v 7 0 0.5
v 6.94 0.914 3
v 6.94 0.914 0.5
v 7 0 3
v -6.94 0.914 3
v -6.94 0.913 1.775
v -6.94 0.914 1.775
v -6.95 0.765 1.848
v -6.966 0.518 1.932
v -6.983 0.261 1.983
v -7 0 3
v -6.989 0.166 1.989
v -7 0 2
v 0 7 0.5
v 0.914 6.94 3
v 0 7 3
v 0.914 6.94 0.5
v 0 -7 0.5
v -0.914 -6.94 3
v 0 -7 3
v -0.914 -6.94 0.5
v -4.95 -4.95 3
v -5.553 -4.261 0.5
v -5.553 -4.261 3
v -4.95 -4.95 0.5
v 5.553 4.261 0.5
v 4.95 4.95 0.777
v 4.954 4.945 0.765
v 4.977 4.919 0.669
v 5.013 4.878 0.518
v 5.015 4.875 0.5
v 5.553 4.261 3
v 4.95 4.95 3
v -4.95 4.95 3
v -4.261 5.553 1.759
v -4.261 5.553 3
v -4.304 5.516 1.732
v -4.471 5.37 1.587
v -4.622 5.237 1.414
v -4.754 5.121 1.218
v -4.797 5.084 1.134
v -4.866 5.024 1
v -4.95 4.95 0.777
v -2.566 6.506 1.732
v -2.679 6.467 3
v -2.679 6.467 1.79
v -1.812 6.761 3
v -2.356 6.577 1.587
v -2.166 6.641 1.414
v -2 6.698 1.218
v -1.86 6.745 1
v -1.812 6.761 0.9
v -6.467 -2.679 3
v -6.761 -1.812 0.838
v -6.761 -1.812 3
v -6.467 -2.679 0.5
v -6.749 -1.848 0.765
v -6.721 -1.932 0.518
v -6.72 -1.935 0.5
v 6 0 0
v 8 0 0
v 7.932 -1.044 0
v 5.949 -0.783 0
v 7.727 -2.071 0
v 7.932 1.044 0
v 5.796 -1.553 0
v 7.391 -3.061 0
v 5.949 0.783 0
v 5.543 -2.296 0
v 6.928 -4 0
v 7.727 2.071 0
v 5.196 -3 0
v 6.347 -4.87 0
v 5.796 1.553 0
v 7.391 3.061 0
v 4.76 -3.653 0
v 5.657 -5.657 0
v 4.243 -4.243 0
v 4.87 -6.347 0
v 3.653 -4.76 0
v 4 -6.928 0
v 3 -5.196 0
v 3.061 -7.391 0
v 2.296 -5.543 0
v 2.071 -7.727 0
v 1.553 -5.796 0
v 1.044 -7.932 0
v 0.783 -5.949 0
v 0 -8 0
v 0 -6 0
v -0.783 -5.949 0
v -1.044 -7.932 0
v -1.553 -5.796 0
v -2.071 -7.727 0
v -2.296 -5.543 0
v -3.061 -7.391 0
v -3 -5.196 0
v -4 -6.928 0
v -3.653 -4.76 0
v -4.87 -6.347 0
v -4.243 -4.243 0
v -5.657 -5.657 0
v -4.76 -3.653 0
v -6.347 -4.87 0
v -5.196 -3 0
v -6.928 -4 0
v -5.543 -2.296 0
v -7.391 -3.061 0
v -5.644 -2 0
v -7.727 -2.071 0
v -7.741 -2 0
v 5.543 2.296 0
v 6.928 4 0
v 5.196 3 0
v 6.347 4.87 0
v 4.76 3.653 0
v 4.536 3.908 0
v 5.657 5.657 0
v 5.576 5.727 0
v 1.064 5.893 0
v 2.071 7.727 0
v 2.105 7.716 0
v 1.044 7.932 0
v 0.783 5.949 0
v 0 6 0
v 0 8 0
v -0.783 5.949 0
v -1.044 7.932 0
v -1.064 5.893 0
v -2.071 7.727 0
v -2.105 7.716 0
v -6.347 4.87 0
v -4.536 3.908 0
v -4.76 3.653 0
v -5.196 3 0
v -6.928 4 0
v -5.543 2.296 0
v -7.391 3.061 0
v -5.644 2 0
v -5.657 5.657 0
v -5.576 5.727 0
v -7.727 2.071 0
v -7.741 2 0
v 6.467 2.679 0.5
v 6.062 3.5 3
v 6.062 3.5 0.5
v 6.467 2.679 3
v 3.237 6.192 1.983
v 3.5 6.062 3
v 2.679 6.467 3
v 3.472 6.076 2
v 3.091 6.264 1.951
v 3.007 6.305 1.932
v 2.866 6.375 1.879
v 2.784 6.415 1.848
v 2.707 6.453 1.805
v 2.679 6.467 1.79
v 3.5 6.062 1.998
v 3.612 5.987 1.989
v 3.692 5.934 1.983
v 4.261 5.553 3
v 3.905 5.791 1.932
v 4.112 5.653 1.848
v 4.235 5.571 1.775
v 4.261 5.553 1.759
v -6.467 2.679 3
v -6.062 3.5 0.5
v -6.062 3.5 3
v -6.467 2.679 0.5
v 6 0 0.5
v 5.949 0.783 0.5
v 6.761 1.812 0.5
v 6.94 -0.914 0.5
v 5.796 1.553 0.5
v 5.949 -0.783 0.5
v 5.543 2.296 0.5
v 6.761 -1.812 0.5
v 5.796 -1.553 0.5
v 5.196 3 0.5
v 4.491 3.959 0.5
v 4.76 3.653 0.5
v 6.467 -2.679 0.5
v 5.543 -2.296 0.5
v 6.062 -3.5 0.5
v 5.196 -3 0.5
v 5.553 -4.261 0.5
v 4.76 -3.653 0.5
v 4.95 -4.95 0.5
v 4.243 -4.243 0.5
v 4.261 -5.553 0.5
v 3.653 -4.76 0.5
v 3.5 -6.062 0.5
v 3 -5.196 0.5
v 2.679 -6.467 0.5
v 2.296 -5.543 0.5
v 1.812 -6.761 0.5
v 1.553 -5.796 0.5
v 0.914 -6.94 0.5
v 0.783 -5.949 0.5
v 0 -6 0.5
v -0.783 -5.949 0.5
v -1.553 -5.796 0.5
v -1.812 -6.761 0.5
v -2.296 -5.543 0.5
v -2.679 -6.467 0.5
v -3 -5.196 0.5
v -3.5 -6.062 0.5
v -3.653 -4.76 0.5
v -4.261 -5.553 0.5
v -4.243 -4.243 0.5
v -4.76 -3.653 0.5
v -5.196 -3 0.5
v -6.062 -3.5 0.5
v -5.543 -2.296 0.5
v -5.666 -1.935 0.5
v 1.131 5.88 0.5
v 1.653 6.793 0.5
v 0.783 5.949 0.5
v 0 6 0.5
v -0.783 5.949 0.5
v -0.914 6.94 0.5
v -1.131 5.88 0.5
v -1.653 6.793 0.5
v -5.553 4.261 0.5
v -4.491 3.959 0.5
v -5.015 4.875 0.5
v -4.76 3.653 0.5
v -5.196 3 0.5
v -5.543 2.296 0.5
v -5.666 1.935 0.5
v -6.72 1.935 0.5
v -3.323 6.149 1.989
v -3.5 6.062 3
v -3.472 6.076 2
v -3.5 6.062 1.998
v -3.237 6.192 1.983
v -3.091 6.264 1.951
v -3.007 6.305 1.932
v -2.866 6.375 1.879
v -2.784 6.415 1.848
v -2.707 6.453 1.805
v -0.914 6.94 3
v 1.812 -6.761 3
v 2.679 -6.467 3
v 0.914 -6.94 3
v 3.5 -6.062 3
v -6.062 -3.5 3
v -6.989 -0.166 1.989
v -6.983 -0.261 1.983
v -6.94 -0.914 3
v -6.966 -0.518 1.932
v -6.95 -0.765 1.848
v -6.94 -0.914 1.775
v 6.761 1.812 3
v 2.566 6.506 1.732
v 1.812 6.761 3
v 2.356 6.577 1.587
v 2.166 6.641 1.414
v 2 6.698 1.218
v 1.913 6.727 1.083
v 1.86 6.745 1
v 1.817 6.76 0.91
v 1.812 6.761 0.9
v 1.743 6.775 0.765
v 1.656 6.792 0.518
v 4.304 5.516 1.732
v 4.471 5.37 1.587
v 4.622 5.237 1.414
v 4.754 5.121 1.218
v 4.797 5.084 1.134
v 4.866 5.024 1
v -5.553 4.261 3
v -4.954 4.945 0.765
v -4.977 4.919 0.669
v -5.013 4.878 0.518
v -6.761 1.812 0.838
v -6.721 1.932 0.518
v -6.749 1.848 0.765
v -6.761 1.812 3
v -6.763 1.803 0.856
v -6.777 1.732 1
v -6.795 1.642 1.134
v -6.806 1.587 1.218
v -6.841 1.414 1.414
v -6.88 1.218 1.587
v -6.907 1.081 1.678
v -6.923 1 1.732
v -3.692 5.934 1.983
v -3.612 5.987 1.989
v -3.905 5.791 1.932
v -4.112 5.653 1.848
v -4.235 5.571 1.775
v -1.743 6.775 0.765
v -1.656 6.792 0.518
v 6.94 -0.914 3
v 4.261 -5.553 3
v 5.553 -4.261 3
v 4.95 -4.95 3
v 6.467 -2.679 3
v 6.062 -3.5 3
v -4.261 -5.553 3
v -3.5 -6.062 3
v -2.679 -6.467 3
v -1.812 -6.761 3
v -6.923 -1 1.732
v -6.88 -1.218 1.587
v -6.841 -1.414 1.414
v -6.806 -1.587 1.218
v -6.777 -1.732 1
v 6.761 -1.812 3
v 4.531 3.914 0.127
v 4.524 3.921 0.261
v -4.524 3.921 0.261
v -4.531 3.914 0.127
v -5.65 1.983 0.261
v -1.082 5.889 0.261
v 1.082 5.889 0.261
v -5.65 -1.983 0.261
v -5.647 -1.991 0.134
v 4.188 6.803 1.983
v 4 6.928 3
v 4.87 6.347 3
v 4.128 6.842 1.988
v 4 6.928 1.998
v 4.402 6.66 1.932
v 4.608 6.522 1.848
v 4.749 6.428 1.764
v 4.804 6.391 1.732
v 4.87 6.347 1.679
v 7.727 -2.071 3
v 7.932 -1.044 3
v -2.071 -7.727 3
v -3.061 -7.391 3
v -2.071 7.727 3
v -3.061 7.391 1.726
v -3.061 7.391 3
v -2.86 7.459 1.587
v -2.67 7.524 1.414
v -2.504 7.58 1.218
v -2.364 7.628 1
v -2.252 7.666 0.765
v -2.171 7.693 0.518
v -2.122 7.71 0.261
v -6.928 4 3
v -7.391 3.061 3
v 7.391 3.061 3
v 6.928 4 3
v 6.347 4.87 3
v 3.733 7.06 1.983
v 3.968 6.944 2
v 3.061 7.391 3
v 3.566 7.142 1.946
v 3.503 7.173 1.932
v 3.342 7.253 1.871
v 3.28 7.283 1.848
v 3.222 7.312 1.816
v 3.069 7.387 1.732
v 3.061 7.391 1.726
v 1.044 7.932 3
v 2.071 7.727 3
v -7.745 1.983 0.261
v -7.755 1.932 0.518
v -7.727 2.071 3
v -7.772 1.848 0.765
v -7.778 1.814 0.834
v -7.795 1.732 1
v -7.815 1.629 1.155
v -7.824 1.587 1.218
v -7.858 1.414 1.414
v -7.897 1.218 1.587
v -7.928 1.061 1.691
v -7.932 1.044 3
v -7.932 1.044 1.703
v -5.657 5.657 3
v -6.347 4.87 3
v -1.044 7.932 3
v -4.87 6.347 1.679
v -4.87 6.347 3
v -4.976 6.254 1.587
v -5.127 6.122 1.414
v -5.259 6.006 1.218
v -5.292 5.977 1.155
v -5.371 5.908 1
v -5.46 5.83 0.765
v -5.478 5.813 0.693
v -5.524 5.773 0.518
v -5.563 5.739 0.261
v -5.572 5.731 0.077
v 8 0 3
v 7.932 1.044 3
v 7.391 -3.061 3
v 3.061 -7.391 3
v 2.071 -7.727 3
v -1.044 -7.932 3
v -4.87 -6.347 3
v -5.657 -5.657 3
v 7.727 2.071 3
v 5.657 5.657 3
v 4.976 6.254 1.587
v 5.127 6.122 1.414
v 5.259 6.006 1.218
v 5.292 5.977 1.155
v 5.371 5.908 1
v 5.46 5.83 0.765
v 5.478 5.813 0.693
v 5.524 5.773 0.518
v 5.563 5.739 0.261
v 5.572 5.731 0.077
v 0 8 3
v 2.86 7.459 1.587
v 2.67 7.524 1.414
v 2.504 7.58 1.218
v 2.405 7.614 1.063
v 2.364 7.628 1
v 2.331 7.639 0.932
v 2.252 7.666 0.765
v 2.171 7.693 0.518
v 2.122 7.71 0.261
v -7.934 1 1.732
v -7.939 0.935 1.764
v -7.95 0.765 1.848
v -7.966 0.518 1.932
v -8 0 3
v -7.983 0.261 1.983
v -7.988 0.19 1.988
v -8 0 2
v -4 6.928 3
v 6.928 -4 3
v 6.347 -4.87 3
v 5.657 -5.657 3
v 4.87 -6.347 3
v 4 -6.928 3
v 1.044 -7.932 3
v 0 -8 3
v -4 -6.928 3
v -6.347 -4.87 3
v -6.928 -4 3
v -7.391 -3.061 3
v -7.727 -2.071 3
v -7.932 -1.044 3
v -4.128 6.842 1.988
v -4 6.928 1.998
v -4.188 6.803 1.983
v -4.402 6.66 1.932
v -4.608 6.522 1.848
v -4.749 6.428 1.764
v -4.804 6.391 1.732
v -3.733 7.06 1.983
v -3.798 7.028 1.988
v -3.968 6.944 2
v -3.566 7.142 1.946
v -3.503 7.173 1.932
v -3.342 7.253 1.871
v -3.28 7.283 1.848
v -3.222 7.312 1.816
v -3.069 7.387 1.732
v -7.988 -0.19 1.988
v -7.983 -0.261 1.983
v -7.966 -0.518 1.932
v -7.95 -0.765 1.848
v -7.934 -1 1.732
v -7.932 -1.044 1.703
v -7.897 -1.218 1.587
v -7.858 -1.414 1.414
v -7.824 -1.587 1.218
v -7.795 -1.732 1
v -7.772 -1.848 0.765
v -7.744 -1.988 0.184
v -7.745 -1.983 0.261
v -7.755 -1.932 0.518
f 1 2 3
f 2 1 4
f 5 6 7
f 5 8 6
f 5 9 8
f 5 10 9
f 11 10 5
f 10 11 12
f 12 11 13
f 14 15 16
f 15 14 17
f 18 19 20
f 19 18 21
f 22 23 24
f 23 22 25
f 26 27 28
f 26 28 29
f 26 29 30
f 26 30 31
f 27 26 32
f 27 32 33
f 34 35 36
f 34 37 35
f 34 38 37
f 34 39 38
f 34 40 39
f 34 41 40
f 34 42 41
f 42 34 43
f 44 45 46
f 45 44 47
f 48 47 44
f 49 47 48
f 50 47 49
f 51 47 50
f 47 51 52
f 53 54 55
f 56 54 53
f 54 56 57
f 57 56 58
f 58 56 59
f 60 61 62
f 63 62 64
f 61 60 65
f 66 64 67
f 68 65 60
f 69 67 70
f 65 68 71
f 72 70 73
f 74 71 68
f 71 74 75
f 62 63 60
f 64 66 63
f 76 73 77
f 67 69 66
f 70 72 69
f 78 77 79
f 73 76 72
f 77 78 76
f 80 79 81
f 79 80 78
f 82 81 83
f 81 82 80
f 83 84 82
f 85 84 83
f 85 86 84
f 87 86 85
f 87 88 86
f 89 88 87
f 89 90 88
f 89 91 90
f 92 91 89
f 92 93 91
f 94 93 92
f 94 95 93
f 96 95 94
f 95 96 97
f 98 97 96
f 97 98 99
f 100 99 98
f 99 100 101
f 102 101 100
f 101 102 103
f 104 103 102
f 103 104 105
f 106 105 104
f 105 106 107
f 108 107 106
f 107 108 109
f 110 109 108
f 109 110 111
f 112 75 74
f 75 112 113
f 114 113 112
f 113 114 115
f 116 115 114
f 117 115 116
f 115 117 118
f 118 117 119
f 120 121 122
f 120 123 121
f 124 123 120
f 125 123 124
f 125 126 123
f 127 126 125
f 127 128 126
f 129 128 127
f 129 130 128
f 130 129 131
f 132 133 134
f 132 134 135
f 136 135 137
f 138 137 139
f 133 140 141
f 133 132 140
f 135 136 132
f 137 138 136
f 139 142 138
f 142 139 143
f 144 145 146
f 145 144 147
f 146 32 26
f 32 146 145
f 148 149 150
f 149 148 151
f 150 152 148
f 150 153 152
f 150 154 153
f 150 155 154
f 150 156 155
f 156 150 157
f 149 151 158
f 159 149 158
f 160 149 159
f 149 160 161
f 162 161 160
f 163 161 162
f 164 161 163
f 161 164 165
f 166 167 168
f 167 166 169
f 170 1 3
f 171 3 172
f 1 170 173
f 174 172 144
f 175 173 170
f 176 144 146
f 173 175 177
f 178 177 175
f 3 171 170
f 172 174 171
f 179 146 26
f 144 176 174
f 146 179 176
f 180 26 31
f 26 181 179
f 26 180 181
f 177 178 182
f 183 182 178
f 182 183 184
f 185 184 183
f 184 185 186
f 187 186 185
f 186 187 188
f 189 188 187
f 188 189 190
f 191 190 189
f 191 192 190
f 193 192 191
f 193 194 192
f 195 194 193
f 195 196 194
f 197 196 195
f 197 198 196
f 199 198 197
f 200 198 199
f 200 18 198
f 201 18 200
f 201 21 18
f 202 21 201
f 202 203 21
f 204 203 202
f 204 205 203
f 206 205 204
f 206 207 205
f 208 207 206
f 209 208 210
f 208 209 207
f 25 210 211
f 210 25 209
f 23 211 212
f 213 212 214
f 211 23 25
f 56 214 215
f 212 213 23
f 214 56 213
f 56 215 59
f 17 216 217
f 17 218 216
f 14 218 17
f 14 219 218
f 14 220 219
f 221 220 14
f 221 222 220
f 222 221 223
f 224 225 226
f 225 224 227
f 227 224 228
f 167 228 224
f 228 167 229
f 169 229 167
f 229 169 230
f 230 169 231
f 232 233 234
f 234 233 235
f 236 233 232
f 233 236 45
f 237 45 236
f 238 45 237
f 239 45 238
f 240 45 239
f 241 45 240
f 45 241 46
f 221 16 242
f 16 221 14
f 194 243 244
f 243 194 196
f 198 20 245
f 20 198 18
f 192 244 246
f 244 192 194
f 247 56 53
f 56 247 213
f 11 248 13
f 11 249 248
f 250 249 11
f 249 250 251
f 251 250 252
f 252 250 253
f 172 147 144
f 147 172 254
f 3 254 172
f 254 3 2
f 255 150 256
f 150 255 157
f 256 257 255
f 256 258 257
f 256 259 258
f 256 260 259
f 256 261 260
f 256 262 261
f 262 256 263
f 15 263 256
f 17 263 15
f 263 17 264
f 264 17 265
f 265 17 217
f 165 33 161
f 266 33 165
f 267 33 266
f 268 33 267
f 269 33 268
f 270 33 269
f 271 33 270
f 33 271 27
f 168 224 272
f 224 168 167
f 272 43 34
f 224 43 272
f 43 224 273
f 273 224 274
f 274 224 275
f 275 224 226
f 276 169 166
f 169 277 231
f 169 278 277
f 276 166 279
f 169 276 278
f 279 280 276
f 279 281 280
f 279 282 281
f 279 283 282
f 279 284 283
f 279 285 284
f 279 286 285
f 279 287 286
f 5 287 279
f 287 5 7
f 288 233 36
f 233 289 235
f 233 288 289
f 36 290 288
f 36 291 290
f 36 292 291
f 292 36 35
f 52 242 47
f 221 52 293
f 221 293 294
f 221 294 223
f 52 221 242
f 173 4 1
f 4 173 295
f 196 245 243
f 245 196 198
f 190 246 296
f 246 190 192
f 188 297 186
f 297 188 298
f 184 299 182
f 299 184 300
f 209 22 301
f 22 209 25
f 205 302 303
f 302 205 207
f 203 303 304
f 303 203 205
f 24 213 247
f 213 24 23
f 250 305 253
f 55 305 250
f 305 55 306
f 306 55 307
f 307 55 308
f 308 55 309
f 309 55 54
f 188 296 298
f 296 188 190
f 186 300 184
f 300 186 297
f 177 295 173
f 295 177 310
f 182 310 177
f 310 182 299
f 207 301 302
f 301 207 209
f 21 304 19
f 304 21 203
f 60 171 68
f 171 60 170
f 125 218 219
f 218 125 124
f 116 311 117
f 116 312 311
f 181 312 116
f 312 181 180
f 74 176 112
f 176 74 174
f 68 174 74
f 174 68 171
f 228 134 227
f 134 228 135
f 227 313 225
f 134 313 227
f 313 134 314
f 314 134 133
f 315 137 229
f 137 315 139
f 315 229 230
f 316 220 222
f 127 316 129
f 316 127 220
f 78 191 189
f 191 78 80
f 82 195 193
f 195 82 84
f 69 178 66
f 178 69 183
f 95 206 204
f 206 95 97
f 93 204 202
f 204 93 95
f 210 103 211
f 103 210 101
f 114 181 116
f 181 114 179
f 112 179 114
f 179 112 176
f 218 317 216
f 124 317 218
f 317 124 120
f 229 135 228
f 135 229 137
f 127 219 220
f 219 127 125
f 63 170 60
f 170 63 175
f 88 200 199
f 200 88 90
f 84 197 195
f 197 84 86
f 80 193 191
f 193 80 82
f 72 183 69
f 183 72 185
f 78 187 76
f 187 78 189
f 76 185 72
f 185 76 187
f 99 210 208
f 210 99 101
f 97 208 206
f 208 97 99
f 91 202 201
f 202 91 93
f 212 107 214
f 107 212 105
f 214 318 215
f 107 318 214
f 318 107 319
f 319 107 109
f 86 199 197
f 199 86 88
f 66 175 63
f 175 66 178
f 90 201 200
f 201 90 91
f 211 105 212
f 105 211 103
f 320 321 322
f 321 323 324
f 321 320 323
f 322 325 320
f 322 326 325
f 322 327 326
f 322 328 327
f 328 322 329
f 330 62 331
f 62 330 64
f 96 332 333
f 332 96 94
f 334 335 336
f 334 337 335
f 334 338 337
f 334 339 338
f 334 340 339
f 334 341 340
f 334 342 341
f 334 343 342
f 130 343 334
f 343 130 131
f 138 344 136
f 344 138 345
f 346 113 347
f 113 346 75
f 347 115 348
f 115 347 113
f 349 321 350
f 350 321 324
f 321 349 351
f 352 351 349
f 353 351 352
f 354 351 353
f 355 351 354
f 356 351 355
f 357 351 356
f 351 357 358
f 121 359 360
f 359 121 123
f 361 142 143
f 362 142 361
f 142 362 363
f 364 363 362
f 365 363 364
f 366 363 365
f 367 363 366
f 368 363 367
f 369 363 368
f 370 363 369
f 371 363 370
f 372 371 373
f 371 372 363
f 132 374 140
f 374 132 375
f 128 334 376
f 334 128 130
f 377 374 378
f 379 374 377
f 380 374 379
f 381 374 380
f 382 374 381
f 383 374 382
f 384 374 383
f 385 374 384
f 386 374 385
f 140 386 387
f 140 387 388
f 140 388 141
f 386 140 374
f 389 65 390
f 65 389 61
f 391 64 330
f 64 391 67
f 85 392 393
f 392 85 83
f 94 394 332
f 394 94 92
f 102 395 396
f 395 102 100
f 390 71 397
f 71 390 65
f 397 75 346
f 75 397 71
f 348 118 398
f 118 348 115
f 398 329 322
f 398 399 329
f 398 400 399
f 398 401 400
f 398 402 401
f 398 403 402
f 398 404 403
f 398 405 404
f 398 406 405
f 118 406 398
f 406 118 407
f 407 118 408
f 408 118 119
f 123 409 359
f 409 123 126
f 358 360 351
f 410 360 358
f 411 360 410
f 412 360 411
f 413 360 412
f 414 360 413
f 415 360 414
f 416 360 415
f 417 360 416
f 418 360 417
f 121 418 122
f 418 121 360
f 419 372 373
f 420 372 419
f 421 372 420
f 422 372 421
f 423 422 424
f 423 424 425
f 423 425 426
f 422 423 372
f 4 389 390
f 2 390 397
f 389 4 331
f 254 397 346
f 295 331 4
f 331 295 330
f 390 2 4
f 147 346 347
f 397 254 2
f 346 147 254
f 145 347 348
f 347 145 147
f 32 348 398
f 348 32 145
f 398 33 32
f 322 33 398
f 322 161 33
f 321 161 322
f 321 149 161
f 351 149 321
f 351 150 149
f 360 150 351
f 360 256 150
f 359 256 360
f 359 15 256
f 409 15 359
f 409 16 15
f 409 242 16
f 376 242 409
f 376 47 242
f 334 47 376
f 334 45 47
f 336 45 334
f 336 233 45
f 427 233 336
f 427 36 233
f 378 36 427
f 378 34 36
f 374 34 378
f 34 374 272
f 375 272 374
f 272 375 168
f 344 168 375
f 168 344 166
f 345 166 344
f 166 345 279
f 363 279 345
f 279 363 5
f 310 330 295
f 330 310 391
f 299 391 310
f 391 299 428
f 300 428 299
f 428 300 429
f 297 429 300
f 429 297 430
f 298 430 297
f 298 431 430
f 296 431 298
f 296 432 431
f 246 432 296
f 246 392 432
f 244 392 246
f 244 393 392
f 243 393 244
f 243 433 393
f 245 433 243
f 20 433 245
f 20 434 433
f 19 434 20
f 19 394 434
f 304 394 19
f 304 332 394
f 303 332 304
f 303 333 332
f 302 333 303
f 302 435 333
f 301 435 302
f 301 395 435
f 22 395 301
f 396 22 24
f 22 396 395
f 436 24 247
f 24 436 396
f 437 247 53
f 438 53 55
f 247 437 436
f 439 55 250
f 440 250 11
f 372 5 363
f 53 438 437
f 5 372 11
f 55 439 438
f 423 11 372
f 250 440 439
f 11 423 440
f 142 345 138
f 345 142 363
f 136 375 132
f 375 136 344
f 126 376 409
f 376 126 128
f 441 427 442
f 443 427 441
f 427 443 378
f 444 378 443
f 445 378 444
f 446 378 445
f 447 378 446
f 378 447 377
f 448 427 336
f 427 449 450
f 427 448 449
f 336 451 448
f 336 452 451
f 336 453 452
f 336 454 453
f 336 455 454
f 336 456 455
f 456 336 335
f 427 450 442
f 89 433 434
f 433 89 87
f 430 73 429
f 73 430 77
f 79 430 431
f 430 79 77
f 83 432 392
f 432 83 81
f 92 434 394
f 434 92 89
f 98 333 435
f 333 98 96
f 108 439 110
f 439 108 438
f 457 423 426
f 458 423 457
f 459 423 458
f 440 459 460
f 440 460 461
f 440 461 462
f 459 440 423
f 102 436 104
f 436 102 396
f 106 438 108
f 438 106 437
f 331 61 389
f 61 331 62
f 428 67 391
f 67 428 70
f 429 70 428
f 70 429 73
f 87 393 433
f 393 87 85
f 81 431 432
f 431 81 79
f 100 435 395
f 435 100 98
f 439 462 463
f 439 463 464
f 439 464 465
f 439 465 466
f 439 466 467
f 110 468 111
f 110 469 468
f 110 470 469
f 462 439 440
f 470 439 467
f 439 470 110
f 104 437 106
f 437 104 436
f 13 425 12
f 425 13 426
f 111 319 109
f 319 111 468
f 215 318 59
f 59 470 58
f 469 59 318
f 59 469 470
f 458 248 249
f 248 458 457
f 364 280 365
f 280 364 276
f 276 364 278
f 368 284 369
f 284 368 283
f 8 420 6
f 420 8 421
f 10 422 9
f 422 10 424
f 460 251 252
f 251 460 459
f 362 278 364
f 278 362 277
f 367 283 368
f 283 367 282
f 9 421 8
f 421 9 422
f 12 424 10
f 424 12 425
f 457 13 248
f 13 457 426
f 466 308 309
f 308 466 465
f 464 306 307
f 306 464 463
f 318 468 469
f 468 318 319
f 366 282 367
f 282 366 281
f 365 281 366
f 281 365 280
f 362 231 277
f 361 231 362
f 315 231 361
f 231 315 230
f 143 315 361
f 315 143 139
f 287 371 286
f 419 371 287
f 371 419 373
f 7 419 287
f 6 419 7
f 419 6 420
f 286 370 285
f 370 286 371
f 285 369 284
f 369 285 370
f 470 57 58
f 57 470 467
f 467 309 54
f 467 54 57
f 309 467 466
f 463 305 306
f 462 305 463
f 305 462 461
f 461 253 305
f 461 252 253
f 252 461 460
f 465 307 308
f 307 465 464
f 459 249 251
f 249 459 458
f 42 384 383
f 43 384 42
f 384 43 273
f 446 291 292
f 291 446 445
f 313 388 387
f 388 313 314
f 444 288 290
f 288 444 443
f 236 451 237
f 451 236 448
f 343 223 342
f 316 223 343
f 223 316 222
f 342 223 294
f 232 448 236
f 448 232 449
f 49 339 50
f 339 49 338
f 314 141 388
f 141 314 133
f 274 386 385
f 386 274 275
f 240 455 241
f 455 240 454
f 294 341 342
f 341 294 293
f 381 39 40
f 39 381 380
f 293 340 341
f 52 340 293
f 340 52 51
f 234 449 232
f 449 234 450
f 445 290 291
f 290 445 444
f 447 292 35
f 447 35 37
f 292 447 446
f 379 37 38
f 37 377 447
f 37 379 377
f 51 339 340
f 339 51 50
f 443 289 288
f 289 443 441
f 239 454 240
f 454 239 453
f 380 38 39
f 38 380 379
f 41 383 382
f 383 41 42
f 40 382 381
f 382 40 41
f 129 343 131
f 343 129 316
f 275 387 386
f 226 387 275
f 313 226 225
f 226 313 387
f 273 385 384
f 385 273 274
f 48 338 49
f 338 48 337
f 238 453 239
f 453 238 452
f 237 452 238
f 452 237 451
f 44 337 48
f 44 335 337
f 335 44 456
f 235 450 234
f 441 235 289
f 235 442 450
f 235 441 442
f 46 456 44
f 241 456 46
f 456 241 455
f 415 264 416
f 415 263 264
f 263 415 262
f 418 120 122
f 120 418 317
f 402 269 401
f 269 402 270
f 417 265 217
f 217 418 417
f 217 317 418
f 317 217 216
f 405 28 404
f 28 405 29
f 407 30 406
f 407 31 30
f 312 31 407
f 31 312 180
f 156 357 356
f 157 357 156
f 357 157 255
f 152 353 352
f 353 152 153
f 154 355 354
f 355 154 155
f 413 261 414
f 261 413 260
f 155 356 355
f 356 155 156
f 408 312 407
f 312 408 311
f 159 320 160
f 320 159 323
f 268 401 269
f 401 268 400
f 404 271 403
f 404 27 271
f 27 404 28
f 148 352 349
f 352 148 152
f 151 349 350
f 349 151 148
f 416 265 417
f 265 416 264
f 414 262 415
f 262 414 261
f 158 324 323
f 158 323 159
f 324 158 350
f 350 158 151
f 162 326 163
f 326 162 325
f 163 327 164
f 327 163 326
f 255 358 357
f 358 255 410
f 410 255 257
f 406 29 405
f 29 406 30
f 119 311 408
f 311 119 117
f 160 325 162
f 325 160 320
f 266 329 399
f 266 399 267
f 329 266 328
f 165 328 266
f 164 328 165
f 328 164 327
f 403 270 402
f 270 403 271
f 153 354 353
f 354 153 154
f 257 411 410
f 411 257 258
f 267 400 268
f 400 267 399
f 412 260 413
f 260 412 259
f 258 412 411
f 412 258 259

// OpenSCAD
// file: ../build_environments.scad
// build_environments.scad: modules to build level sections
//

module pool(diameter=10.0, wall_height=2.0, step_width=3.0, connections=[])
{
    difference() {
        union() {
        difference() {
            cylinder(h=0.5,r1=diameter+step_width,r2=diameter+step_width,$fn=48);
            translate([0,0,-0.1])
                cylinder(h=0.7,r1=diameter,r2=diameter,$fn=48);
        }
        difference() {
            cylinder(h=wall_height,r1=diameter+step_width+1.0,r2=diameter+step_width+1.0,$fn=48);
            translate([0,0,-0.1])
                cylinder(h=wall_height+0.2,r1=diameter+step_width,r2=diameter+step_width,$fn=48);
        }
        }
    
        for (c = connections)
        {
            rotate([0,90,0]) {
                angle = atan2(c[1],c[0]);
                rotate([-angle,0,0]) {
                    cylinder(h=diameter+5.0,r1=c[2],r2=c[2],$fn=48);
                }
            }
        }
    }
}

module straight(length=10.0, width=2.0, dy1=0.0, dy2=0.0, dz=0.0)
{
    dims = [0, 0, 0, 0, 0, (dz/length)];
    matrix = [
        [ 1, dims[0], dims[1], 0 ],
        [ dims[2], 1, dims[4], 0 ],
        [ dims[5], dims[3], 1, 0 ],
        [ 0, 0, 0, 1 ]
    ];
    multmatrix(matrix)
    difference() {
        translate([dy1,0,0])
        union() {
            rotate([0,90,0]) {
                difference() {
                    cylinder(h=(length-dy1-dy2),r1=width+1.0,r2=width+1.0,$fn=24);
                    translate([0,0,-0.1])
                        cylinder(h=(length-dy1-dy2+0.2),r1=width,r2=width,$fn=24);
                }
                difference() {
                    cylinder(h=1.0,r1=width+2.0,r2=width+2.0,$fn=24);
                    translate([0,0,-0.1])
                        cylinder(h=1.2,r1=width,r2=width,$fn=24);
                }
                translate([0,0,(length-dy1-dy2)-1.0]) {
                    difference() {
                        cylinder(h=1.0,r1=width+2.0,r2=width+2.0,$fn=24);
                        translate([0,0,-0.1])
                            cylinder(h=1.2,r1=width,r2=width,$fn=24);
                    }
                }
            }
        }
        translate([0,0,-(2*width+4.0)/2])
            cube([3*length,3*length,2*width+4.0],center=true);
    }
}

module curve(p0=[0,0], center=[0,0], dir=1, angle=0.0, width=2.0)
{
    radius = sqrt((p0[0]-center[0])*(p0[0]-center[0]) + (p0[1]-center[1])*(p0[1]-center[1]));
    if (dir == 0) {
        difference() {
            rotate([0,0,-90])
            difference() {
                rotate_extrude(angle = angle, convexity = 10, $fn=32)
                    translate([radius, 0, 0])
                        circle(r = width+1.0,$fn=24);
                rotate([0,0,-1.0])
                    rotate_extrude(angle = angle+2.0, convexity = 10, $fn=32)
                        translate([radius, 0, 0])
                            circle(r = width,$fn=24);
            }
            translate([0,0,-(2*width+4.0)/2])
                cube([5*radius,5*radius,2*width+4.0],center=true);
        }
    }
    else {
        difference() {
            rotate([0,0,90])
            difference() {
                rotate_extrude(angle = -angle, convexity = 10, $fn=32)
                    translate([radius, 0, 0])
                        circle(r = width+1.0,$fn=24);
                rotate([0,0,1.0])
                    rotate_extrude(angle = -angle-2.0, convexity = 10, $fn=32)
                        translate([radius, 0, 0])
                            circle(r = width,$fn=24);
            }
            translate([0,0,-(2*width+4.0)/2])
                cube([5*radius,5*radius,2*width+4.0],center=true);
        }
    }

}

// test pool
//pool(diameter=12.0000, wall_height=3.0000, step_width=3.0000, connections=[[0.0000,-26.0000,2.0000], [23.6074,0.0000,2.0000]]);

// test straight, slope
//straight(length=26.0000, width=2.0000, dy1=11.8322, dy2=6.7082, dz=0.0000);
//straight(length=29.1549, width=12.0000, dy1=0.0000, dy2=0.0000, dz=-15.0000);

// test curve
//curve(p0=[23.6074, 0.0000], center=[23.6074, 5.0000], dir=0, angle=60.1011, width=2.0000);
//curve(p0=[33.6426, 12.4219], center=[37.9771, 9.9295], dir=1, angle=120.4627, width=2.0000);
// main file
use <../build_environments.scad>;
pool(diameter=6.0000, wall_height=3.0000, step_width=1.0000, connections=[[-16.0000,0.0000,2.0000], [-8.0000,14.0000,2.0000], [8.0000,14.0000,2.0000]]);
